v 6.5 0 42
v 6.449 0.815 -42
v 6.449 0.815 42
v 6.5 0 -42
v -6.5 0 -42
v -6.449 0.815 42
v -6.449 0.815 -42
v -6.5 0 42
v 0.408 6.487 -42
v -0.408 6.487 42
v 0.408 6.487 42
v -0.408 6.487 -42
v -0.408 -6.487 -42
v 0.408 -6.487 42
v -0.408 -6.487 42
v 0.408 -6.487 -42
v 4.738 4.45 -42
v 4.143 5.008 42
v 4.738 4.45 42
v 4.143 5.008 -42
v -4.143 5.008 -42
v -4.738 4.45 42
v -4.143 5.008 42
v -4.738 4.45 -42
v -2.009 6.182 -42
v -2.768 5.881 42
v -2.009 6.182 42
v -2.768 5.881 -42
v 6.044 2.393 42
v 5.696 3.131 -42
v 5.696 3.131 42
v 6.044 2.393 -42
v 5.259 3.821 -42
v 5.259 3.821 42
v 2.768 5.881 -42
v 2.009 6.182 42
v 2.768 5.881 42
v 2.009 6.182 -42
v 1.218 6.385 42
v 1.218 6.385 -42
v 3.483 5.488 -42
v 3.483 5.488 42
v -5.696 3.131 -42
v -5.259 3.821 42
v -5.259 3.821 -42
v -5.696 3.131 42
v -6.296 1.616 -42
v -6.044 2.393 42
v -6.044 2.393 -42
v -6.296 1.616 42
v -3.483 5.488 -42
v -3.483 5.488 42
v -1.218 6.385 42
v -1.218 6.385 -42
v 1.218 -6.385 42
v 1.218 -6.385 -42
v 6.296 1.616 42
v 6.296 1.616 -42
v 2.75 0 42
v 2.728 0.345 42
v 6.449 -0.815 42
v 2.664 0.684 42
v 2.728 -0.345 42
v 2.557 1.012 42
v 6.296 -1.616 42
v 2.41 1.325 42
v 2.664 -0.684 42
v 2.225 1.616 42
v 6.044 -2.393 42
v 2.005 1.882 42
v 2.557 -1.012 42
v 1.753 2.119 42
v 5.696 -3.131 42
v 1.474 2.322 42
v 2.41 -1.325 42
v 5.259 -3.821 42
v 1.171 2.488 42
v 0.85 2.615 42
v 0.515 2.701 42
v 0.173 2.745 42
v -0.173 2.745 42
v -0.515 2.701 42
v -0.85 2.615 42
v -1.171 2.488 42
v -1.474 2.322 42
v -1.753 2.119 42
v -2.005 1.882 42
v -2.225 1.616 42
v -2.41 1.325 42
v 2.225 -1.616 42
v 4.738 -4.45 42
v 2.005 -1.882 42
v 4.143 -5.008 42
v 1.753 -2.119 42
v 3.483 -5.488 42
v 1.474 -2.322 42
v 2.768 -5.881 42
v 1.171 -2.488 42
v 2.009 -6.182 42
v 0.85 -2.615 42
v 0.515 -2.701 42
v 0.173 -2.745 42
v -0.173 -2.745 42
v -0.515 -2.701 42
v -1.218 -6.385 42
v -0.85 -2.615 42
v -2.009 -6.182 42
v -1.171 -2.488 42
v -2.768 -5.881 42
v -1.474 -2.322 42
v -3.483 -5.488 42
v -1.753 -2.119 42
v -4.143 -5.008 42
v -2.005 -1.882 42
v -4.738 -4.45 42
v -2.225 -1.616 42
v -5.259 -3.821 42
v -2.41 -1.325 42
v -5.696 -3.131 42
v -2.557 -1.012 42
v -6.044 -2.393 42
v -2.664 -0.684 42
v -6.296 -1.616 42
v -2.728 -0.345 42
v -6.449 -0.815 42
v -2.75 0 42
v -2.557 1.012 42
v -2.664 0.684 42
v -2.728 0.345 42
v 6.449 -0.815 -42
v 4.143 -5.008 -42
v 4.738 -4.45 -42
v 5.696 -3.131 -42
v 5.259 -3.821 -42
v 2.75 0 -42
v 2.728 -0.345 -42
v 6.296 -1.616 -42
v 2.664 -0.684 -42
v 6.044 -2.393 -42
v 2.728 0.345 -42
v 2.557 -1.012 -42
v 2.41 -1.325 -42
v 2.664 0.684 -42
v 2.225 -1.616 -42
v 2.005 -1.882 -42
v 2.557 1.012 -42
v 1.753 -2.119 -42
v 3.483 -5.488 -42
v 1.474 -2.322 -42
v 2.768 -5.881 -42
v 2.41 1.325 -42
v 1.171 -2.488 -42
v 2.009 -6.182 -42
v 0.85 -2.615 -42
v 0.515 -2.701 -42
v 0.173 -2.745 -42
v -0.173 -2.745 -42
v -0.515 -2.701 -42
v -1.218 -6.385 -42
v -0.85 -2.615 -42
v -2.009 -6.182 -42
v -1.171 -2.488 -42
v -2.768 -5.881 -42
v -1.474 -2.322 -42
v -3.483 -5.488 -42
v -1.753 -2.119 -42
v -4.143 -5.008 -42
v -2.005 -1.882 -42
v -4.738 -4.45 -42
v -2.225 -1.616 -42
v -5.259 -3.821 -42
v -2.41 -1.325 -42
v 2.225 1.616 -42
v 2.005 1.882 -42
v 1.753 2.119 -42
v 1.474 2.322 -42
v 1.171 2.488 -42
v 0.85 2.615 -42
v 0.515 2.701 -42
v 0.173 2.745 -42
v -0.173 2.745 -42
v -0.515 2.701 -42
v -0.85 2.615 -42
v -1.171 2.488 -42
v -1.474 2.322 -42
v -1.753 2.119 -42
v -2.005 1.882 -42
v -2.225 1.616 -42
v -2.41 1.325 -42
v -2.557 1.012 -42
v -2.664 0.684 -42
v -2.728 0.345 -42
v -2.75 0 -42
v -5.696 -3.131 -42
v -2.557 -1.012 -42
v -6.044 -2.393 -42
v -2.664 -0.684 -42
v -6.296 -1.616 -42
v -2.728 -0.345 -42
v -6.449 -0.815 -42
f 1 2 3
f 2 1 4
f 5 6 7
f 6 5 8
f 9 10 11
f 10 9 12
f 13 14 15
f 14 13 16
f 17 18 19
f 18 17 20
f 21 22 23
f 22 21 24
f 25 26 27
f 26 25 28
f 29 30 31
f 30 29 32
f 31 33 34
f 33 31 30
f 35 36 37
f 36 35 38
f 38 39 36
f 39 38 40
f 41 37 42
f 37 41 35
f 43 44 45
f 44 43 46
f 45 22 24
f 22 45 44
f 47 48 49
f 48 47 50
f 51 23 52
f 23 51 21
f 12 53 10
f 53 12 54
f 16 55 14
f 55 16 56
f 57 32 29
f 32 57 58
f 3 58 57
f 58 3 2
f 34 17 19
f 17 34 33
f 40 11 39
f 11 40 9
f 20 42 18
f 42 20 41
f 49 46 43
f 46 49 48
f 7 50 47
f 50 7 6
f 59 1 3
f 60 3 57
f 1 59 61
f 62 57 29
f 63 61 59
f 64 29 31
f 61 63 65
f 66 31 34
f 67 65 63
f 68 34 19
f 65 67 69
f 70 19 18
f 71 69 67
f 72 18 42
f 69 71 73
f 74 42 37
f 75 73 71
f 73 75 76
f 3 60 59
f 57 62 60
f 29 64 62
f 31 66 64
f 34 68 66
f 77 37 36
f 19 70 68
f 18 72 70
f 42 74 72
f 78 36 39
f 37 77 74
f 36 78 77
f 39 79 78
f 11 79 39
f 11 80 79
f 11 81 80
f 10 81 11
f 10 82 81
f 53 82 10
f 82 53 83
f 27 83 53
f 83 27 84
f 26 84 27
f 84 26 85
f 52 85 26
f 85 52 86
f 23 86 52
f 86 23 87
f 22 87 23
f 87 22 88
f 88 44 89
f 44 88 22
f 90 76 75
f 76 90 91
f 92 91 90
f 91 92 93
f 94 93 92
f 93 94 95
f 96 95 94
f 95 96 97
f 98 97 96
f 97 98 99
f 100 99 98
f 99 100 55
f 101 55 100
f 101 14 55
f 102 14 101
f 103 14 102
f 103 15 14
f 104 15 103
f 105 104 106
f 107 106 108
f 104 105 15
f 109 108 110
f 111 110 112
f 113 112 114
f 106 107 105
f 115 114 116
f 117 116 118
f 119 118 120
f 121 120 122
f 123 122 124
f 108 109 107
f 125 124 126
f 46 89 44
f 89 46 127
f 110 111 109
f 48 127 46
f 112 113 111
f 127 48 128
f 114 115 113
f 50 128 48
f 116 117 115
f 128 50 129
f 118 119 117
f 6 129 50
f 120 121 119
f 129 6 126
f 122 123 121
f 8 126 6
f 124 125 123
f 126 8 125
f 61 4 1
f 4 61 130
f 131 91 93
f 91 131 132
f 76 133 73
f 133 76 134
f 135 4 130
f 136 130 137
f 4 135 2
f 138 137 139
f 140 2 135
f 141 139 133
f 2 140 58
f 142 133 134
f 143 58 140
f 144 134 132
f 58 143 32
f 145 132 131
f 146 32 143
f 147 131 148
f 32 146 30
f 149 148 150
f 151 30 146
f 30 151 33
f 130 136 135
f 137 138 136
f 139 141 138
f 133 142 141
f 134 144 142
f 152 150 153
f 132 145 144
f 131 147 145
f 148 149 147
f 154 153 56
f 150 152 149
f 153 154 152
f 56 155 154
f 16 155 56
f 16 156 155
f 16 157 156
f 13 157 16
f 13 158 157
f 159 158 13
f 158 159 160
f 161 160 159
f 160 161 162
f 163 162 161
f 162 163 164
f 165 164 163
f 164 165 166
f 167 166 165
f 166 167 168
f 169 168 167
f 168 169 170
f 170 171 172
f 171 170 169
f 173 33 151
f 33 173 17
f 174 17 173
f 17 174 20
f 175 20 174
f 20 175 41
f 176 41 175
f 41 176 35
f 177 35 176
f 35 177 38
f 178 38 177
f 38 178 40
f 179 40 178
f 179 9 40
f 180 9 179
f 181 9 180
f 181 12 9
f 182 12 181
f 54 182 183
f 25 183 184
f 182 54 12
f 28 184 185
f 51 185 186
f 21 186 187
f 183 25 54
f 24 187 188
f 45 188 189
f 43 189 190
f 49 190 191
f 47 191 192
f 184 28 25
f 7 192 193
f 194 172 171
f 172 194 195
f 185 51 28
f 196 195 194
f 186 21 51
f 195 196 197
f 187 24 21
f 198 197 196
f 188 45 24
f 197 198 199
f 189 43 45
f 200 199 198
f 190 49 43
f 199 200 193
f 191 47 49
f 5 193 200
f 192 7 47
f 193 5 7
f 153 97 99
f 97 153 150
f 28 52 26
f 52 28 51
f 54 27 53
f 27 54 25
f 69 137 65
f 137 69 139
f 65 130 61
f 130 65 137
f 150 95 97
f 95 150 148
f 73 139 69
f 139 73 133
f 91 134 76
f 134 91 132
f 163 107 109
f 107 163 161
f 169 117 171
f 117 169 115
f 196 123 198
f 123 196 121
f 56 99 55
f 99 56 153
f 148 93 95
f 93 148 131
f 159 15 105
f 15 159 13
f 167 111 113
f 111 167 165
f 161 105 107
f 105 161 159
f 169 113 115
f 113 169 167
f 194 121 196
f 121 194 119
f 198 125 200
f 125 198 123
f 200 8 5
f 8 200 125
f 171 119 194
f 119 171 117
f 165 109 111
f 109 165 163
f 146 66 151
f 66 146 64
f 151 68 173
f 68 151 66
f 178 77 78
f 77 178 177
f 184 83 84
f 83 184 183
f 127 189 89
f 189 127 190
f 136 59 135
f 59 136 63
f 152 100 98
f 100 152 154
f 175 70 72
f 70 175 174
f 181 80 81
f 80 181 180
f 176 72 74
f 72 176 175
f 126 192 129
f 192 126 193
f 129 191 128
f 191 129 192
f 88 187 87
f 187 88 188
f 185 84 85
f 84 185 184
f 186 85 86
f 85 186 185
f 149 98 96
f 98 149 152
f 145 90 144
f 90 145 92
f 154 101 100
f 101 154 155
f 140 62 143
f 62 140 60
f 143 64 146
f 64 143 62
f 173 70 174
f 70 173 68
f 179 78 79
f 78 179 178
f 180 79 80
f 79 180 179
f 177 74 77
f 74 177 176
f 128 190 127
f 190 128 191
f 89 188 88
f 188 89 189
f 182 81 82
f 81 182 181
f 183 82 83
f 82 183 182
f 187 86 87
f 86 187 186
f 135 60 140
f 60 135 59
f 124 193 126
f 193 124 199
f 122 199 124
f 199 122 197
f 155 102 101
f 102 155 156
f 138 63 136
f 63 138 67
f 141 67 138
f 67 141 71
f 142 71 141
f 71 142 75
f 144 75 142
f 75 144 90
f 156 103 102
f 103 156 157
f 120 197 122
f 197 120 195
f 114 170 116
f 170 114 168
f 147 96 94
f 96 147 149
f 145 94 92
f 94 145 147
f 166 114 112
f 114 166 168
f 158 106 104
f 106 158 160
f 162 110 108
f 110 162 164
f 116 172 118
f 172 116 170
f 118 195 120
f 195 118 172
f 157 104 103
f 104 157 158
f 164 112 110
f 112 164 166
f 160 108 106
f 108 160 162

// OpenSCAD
$fn = 50;


difference() {
	union() {
		translate(v = [0, 0, -42.0000000000]) {
			cylinder(h = 84, r = 6.5000000000);
		}
	}
	union() {
		translate(v = [0, 0, -100.0000000000]) {
			cylinder(h = 200, r = 2.7500000000);
		}
	}
}
